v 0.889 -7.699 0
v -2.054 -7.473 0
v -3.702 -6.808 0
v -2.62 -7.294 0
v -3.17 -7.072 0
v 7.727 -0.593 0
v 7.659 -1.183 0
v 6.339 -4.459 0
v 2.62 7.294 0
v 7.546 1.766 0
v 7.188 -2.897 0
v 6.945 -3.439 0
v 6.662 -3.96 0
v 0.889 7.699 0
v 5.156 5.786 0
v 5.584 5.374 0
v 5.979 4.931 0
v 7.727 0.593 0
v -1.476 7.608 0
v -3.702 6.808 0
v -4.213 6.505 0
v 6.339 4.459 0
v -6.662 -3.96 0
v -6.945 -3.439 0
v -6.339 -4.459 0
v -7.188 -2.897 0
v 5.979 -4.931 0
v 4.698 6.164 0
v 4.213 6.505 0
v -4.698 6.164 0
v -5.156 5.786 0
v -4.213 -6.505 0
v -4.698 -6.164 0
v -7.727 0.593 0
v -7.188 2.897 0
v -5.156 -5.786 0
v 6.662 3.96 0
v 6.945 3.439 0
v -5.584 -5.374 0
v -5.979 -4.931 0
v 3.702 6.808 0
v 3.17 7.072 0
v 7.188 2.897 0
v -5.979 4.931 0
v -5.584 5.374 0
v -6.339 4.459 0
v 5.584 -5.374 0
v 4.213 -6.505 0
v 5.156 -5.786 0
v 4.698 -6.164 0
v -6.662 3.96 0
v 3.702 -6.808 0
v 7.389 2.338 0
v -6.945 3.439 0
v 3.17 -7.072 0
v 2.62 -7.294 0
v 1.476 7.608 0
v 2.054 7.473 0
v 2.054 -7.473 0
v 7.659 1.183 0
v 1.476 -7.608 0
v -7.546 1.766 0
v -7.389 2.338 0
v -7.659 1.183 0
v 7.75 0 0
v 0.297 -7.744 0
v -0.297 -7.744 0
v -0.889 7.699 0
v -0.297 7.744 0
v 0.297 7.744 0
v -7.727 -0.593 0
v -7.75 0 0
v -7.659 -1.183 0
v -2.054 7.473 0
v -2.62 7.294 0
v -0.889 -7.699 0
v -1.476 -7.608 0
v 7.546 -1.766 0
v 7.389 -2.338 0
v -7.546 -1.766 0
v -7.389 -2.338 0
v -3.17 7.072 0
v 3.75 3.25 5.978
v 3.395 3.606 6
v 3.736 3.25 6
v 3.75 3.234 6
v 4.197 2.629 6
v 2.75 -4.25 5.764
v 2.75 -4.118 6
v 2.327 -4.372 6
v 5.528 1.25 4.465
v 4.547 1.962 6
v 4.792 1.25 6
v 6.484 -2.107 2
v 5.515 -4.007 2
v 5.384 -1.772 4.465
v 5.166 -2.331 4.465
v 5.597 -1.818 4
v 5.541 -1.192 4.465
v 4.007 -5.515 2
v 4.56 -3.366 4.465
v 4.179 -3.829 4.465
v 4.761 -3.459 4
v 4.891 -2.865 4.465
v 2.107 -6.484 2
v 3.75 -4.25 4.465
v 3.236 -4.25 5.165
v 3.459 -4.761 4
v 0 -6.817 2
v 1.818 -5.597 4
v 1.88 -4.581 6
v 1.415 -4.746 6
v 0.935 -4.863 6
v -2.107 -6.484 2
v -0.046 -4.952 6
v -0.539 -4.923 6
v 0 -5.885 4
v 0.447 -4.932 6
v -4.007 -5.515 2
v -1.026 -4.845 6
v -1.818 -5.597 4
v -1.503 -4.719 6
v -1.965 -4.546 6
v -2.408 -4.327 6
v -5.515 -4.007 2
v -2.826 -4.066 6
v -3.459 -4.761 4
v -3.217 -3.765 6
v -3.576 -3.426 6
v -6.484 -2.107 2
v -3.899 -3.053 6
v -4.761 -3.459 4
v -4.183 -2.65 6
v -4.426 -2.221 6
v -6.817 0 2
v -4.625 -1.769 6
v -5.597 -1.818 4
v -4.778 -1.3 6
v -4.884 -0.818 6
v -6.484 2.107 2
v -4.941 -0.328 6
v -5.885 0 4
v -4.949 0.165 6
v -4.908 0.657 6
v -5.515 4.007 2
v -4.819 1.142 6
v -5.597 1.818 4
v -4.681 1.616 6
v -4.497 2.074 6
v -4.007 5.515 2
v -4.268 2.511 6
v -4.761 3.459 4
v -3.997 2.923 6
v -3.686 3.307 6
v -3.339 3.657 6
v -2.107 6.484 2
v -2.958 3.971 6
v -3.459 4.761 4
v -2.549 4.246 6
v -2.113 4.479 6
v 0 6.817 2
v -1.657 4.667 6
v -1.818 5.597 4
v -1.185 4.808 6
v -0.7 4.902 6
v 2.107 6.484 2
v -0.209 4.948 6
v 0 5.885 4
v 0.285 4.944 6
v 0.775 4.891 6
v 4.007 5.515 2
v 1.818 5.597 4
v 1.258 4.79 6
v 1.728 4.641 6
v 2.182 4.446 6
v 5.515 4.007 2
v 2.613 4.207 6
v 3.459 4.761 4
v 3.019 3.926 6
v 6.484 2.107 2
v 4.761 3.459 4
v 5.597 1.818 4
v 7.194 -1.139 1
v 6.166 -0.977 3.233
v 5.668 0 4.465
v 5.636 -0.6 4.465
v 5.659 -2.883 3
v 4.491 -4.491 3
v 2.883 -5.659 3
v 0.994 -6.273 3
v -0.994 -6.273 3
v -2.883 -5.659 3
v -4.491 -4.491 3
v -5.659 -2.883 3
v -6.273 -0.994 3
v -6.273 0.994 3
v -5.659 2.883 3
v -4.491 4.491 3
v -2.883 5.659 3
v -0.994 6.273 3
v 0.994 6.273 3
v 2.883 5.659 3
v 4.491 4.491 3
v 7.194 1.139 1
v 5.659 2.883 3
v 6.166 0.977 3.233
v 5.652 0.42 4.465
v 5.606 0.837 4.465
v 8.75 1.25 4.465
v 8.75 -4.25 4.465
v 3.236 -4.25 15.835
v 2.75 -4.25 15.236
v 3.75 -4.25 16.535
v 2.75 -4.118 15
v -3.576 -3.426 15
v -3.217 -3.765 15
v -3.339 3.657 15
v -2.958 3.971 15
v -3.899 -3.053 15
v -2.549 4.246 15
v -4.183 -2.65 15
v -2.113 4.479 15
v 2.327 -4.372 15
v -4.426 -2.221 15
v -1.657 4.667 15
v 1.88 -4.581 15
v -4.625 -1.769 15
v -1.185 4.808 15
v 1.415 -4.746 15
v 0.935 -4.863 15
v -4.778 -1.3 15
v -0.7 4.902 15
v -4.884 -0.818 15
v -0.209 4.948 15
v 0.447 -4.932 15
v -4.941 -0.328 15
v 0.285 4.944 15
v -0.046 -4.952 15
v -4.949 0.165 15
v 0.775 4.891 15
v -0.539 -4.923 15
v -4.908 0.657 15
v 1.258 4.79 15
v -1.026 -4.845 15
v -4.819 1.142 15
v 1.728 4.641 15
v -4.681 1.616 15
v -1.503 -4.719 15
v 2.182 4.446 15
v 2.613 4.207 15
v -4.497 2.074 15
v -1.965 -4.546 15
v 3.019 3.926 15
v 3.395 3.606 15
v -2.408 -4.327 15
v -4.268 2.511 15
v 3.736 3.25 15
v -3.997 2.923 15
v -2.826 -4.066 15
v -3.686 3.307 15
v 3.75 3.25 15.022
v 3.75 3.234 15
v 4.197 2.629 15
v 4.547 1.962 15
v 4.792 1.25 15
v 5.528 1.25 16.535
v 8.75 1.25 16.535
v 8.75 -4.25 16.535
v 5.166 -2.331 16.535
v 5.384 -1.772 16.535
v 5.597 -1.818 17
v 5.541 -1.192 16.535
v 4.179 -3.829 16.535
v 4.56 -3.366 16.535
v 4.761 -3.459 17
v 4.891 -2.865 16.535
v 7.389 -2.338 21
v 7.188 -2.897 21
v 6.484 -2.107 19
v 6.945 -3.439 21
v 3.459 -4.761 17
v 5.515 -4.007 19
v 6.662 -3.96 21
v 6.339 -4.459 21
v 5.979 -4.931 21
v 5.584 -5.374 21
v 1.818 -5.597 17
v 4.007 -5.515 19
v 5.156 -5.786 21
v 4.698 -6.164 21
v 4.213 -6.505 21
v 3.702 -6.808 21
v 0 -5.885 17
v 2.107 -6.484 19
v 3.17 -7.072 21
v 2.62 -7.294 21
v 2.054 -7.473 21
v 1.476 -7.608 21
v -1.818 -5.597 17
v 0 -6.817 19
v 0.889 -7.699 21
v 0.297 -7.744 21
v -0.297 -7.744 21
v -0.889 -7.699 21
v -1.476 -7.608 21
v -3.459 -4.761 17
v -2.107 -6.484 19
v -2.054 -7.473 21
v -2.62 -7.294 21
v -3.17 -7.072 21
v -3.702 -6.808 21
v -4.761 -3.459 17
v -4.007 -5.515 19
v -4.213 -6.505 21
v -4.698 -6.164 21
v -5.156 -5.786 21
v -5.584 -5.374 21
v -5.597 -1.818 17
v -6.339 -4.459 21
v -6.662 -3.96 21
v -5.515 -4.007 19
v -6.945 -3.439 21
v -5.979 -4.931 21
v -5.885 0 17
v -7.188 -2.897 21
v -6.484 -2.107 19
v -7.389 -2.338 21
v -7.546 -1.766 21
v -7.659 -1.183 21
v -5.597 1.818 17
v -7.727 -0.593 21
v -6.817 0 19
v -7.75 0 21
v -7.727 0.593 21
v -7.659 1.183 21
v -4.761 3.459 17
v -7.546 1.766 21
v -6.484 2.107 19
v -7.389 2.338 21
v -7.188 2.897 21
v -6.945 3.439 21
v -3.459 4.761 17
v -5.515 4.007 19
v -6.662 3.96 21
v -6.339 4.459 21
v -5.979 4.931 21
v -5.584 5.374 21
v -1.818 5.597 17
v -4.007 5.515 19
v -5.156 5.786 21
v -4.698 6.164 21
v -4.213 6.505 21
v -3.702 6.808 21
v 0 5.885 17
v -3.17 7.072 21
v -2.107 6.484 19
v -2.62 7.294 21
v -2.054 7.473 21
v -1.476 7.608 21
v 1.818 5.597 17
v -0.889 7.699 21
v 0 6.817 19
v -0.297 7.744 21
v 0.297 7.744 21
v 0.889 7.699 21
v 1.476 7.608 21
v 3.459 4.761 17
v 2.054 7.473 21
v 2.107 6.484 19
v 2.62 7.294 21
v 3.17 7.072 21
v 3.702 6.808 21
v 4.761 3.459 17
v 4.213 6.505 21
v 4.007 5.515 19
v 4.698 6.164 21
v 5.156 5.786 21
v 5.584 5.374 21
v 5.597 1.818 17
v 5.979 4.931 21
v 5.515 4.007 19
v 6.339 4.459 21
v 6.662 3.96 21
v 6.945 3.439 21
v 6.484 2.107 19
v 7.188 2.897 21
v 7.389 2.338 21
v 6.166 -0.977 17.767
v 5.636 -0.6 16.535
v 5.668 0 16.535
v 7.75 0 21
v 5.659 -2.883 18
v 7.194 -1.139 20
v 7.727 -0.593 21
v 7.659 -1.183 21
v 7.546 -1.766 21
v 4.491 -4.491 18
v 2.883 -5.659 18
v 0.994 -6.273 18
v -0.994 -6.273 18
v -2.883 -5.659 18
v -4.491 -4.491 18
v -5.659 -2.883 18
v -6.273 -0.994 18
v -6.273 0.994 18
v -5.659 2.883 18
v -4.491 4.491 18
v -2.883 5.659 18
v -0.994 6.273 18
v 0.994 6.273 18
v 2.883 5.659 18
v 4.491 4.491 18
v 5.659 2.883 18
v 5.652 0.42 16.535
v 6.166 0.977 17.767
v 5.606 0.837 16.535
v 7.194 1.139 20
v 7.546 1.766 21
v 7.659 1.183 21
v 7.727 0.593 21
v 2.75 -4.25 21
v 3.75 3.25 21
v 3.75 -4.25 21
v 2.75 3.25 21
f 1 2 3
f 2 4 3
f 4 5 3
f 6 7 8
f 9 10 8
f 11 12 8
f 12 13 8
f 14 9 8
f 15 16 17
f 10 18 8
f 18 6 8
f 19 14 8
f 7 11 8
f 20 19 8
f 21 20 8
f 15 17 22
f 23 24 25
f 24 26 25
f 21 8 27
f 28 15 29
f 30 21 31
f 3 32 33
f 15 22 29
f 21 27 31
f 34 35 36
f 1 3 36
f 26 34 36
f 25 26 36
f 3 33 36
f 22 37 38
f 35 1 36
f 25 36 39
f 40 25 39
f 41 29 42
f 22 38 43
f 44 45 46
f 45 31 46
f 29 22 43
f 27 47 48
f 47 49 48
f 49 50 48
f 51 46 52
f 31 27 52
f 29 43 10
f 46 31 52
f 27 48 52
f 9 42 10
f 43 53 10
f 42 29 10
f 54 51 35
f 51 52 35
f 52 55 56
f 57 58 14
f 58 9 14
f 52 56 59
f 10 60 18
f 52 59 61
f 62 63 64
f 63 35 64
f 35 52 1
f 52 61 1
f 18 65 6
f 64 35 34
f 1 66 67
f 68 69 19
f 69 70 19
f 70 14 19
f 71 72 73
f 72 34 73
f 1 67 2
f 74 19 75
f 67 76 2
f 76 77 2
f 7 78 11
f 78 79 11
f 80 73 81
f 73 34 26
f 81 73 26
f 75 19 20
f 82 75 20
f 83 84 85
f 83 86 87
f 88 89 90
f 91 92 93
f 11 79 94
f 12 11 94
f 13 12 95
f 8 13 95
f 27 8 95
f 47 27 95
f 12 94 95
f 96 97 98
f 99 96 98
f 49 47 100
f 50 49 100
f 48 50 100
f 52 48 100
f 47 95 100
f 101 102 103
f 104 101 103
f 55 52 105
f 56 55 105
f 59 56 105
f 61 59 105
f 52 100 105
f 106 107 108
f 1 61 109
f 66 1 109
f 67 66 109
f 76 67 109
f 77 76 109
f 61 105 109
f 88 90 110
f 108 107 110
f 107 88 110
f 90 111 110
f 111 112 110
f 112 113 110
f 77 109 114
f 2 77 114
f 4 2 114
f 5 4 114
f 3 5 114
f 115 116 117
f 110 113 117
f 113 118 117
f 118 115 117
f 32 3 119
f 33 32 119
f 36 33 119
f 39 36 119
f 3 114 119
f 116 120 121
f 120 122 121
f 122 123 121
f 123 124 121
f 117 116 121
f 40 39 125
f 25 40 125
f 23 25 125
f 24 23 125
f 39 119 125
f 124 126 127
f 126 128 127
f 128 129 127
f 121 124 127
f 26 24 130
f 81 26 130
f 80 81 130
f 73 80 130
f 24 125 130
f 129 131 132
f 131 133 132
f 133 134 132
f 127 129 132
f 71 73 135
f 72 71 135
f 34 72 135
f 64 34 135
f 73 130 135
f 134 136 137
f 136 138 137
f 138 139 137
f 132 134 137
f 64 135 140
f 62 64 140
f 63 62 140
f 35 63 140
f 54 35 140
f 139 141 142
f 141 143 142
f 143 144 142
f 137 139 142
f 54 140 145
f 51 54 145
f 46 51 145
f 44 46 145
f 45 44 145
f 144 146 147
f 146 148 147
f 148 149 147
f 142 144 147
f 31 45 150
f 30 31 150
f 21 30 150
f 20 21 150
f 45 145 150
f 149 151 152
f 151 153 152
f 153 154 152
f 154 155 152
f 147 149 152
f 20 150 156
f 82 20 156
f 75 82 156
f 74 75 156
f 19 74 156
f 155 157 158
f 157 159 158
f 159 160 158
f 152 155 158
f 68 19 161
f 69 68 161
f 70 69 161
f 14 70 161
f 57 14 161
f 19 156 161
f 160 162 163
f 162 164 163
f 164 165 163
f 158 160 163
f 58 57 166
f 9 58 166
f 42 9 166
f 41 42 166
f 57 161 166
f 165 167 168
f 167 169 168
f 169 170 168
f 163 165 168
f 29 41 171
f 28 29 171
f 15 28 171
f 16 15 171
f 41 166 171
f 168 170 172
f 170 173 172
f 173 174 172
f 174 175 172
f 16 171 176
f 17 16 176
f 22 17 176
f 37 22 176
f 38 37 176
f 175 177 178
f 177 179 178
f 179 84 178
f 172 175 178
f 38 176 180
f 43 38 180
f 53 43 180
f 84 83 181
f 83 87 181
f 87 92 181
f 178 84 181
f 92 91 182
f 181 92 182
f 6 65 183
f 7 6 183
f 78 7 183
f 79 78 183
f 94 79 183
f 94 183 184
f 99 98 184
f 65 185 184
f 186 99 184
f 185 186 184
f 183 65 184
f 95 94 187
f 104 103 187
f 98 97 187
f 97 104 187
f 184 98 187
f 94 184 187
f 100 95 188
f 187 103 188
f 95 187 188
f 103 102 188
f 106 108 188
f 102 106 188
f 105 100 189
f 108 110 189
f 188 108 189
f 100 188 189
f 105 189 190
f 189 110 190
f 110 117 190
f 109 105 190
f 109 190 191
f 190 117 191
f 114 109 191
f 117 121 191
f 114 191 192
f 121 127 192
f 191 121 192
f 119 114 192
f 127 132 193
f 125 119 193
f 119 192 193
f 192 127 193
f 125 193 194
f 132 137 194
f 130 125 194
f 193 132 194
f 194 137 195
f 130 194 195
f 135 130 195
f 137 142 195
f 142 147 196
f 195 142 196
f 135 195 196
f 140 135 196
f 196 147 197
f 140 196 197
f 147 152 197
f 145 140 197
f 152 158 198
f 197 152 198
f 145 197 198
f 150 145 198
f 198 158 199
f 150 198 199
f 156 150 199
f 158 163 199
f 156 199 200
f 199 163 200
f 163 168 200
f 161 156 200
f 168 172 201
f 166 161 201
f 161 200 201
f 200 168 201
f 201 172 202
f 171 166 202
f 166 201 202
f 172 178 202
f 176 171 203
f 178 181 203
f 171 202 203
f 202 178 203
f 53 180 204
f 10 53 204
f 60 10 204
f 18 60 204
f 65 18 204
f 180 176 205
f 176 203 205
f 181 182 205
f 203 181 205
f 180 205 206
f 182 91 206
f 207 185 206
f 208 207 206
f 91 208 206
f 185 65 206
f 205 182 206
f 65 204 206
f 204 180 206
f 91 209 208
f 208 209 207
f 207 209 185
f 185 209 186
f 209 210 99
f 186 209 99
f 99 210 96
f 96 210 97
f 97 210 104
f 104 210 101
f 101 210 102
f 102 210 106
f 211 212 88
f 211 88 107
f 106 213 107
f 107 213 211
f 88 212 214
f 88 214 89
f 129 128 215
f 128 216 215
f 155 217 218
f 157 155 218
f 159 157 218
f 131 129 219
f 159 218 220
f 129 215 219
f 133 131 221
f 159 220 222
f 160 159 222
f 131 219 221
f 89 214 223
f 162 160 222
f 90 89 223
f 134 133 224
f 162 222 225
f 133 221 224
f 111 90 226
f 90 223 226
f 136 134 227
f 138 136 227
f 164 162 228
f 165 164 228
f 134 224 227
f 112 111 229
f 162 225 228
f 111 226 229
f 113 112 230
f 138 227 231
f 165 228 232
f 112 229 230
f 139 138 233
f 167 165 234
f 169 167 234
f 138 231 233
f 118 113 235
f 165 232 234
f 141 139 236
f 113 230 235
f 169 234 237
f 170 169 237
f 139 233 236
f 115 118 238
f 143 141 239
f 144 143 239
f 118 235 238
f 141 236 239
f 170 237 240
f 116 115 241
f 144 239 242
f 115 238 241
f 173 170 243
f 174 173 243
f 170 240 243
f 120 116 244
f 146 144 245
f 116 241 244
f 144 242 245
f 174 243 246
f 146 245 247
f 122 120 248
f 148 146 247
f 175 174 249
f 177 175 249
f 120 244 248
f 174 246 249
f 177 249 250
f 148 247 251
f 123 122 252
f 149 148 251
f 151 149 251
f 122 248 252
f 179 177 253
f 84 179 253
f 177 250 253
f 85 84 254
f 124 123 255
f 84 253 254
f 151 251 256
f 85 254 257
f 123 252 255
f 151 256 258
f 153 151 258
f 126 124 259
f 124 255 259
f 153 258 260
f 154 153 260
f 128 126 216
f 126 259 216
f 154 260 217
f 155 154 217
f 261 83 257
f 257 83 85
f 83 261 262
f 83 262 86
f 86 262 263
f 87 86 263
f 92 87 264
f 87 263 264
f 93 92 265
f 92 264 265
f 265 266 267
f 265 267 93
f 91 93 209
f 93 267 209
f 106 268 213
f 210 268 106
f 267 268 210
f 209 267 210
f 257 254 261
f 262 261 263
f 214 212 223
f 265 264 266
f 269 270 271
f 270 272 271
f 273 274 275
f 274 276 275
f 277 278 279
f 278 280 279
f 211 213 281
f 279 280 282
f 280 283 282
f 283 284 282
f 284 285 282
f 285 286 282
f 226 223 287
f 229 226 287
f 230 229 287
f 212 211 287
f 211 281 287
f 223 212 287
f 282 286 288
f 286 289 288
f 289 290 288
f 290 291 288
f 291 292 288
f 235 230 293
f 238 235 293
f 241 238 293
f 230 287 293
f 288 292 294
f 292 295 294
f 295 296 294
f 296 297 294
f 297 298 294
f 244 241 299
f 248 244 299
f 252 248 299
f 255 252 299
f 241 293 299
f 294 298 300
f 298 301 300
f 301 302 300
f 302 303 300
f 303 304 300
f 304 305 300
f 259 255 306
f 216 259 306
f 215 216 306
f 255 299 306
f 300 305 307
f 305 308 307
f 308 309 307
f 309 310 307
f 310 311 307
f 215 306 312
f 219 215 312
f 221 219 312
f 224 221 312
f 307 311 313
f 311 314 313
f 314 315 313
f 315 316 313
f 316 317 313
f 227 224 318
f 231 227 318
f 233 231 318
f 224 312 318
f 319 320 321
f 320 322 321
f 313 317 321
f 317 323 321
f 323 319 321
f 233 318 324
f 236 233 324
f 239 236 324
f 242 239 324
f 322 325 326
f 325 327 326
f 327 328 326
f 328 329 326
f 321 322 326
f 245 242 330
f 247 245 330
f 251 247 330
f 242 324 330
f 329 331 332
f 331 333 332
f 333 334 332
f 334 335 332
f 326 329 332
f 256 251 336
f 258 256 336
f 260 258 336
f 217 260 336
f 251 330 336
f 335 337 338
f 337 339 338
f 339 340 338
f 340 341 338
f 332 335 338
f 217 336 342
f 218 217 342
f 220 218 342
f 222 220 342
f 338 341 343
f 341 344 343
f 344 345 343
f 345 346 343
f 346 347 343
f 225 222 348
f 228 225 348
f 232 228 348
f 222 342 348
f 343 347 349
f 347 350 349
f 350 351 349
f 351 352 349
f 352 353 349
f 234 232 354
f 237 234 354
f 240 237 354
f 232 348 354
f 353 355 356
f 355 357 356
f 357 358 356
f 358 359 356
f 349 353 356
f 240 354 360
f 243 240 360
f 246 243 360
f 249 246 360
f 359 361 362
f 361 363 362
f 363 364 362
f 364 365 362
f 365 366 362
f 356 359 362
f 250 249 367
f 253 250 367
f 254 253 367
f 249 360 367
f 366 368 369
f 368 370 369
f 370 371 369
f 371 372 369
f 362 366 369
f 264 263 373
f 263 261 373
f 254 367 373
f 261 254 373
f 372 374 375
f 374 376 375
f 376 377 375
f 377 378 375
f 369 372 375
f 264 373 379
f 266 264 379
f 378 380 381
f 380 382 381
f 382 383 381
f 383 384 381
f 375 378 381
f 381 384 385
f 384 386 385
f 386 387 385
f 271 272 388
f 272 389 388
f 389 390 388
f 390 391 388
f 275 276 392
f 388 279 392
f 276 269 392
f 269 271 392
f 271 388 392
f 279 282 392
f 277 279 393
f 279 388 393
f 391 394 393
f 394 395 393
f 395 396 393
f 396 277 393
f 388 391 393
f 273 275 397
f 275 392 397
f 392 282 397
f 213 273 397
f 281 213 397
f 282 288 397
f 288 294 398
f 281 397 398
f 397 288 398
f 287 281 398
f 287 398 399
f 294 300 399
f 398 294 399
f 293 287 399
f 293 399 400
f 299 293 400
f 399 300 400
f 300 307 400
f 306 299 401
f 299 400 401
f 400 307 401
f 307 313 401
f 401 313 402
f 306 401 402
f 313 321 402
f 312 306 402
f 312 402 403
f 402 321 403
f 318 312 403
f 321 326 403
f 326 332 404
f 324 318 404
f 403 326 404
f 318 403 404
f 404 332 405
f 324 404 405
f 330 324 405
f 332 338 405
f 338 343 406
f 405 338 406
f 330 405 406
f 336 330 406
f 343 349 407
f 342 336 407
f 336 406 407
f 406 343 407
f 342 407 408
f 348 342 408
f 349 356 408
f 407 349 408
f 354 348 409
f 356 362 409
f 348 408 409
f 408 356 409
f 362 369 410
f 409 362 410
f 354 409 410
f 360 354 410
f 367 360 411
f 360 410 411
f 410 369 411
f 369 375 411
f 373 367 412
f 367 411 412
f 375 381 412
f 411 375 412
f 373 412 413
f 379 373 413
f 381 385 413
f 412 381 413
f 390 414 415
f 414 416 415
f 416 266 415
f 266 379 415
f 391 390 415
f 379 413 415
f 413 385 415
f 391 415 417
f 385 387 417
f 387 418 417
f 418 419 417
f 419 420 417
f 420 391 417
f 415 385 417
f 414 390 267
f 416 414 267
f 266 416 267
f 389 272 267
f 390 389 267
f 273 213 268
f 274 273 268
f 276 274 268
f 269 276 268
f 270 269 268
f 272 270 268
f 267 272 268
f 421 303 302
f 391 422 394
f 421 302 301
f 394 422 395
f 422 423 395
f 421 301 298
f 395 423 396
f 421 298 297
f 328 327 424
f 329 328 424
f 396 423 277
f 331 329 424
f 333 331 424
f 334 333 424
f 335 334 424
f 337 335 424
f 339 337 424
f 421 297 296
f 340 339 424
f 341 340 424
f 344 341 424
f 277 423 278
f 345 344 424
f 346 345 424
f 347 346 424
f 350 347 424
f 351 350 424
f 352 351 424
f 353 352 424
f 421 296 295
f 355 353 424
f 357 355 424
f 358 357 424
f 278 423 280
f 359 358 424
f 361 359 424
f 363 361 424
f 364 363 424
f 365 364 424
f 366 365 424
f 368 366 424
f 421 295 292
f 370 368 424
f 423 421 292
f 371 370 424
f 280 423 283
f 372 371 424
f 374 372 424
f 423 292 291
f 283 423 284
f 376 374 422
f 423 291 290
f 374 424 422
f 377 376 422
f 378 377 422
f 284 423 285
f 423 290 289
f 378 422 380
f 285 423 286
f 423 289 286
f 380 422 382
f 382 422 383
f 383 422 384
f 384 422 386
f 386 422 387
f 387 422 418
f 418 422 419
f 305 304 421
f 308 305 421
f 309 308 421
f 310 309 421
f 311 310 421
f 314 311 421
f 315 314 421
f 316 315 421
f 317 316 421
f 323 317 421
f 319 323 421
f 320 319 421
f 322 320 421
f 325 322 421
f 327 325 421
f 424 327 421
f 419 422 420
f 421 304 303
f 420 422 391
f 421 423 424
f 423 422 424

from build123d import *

# Parameters (mm, degrees)
SKETCH001_W  = 1
SKETCH001_H  = 7.5
PAD_DEPTH    = 20
SKETCH002_W  = 6
SKETCH002_H  = 12.06981
PAD001_DEPTH = 5.5


with BuildPart() as part:
    # Sketch → Revolution (revolve)
    with BuildSketch(Plane.XZ):
        Polygon((0, 0), (7.75, 0), (4.952154, 6), (4.952154, 15), (7.75, 21), (0, 21), align=None)
    revolve(axis=Axis((0, 0, 0), (0, 0, 1)))

    # Sketch001 → Pad (new body)
    with BuildSketch(Plane(origin=(0, 0, 21), x_dir=(-1, 0, 0), z_dir=(0, 0, 1))):
        with Locations((-3.25, 0.5)):
            Rectangle(SKETCH001_W, SKETCH001_H)
    extrude(amount=-PAD_DEPTH)

    # Sketch002 → Pad001 (new body)
    with BuildSketch(Plane.XZ.offset(4.25)):
        with Locations((5.75, 10.5)):
            Rectangle(SKETCH002_W, SKETCH002_H)
    extrude(amount=-PAD001_DEPTH)


solid = part.part
